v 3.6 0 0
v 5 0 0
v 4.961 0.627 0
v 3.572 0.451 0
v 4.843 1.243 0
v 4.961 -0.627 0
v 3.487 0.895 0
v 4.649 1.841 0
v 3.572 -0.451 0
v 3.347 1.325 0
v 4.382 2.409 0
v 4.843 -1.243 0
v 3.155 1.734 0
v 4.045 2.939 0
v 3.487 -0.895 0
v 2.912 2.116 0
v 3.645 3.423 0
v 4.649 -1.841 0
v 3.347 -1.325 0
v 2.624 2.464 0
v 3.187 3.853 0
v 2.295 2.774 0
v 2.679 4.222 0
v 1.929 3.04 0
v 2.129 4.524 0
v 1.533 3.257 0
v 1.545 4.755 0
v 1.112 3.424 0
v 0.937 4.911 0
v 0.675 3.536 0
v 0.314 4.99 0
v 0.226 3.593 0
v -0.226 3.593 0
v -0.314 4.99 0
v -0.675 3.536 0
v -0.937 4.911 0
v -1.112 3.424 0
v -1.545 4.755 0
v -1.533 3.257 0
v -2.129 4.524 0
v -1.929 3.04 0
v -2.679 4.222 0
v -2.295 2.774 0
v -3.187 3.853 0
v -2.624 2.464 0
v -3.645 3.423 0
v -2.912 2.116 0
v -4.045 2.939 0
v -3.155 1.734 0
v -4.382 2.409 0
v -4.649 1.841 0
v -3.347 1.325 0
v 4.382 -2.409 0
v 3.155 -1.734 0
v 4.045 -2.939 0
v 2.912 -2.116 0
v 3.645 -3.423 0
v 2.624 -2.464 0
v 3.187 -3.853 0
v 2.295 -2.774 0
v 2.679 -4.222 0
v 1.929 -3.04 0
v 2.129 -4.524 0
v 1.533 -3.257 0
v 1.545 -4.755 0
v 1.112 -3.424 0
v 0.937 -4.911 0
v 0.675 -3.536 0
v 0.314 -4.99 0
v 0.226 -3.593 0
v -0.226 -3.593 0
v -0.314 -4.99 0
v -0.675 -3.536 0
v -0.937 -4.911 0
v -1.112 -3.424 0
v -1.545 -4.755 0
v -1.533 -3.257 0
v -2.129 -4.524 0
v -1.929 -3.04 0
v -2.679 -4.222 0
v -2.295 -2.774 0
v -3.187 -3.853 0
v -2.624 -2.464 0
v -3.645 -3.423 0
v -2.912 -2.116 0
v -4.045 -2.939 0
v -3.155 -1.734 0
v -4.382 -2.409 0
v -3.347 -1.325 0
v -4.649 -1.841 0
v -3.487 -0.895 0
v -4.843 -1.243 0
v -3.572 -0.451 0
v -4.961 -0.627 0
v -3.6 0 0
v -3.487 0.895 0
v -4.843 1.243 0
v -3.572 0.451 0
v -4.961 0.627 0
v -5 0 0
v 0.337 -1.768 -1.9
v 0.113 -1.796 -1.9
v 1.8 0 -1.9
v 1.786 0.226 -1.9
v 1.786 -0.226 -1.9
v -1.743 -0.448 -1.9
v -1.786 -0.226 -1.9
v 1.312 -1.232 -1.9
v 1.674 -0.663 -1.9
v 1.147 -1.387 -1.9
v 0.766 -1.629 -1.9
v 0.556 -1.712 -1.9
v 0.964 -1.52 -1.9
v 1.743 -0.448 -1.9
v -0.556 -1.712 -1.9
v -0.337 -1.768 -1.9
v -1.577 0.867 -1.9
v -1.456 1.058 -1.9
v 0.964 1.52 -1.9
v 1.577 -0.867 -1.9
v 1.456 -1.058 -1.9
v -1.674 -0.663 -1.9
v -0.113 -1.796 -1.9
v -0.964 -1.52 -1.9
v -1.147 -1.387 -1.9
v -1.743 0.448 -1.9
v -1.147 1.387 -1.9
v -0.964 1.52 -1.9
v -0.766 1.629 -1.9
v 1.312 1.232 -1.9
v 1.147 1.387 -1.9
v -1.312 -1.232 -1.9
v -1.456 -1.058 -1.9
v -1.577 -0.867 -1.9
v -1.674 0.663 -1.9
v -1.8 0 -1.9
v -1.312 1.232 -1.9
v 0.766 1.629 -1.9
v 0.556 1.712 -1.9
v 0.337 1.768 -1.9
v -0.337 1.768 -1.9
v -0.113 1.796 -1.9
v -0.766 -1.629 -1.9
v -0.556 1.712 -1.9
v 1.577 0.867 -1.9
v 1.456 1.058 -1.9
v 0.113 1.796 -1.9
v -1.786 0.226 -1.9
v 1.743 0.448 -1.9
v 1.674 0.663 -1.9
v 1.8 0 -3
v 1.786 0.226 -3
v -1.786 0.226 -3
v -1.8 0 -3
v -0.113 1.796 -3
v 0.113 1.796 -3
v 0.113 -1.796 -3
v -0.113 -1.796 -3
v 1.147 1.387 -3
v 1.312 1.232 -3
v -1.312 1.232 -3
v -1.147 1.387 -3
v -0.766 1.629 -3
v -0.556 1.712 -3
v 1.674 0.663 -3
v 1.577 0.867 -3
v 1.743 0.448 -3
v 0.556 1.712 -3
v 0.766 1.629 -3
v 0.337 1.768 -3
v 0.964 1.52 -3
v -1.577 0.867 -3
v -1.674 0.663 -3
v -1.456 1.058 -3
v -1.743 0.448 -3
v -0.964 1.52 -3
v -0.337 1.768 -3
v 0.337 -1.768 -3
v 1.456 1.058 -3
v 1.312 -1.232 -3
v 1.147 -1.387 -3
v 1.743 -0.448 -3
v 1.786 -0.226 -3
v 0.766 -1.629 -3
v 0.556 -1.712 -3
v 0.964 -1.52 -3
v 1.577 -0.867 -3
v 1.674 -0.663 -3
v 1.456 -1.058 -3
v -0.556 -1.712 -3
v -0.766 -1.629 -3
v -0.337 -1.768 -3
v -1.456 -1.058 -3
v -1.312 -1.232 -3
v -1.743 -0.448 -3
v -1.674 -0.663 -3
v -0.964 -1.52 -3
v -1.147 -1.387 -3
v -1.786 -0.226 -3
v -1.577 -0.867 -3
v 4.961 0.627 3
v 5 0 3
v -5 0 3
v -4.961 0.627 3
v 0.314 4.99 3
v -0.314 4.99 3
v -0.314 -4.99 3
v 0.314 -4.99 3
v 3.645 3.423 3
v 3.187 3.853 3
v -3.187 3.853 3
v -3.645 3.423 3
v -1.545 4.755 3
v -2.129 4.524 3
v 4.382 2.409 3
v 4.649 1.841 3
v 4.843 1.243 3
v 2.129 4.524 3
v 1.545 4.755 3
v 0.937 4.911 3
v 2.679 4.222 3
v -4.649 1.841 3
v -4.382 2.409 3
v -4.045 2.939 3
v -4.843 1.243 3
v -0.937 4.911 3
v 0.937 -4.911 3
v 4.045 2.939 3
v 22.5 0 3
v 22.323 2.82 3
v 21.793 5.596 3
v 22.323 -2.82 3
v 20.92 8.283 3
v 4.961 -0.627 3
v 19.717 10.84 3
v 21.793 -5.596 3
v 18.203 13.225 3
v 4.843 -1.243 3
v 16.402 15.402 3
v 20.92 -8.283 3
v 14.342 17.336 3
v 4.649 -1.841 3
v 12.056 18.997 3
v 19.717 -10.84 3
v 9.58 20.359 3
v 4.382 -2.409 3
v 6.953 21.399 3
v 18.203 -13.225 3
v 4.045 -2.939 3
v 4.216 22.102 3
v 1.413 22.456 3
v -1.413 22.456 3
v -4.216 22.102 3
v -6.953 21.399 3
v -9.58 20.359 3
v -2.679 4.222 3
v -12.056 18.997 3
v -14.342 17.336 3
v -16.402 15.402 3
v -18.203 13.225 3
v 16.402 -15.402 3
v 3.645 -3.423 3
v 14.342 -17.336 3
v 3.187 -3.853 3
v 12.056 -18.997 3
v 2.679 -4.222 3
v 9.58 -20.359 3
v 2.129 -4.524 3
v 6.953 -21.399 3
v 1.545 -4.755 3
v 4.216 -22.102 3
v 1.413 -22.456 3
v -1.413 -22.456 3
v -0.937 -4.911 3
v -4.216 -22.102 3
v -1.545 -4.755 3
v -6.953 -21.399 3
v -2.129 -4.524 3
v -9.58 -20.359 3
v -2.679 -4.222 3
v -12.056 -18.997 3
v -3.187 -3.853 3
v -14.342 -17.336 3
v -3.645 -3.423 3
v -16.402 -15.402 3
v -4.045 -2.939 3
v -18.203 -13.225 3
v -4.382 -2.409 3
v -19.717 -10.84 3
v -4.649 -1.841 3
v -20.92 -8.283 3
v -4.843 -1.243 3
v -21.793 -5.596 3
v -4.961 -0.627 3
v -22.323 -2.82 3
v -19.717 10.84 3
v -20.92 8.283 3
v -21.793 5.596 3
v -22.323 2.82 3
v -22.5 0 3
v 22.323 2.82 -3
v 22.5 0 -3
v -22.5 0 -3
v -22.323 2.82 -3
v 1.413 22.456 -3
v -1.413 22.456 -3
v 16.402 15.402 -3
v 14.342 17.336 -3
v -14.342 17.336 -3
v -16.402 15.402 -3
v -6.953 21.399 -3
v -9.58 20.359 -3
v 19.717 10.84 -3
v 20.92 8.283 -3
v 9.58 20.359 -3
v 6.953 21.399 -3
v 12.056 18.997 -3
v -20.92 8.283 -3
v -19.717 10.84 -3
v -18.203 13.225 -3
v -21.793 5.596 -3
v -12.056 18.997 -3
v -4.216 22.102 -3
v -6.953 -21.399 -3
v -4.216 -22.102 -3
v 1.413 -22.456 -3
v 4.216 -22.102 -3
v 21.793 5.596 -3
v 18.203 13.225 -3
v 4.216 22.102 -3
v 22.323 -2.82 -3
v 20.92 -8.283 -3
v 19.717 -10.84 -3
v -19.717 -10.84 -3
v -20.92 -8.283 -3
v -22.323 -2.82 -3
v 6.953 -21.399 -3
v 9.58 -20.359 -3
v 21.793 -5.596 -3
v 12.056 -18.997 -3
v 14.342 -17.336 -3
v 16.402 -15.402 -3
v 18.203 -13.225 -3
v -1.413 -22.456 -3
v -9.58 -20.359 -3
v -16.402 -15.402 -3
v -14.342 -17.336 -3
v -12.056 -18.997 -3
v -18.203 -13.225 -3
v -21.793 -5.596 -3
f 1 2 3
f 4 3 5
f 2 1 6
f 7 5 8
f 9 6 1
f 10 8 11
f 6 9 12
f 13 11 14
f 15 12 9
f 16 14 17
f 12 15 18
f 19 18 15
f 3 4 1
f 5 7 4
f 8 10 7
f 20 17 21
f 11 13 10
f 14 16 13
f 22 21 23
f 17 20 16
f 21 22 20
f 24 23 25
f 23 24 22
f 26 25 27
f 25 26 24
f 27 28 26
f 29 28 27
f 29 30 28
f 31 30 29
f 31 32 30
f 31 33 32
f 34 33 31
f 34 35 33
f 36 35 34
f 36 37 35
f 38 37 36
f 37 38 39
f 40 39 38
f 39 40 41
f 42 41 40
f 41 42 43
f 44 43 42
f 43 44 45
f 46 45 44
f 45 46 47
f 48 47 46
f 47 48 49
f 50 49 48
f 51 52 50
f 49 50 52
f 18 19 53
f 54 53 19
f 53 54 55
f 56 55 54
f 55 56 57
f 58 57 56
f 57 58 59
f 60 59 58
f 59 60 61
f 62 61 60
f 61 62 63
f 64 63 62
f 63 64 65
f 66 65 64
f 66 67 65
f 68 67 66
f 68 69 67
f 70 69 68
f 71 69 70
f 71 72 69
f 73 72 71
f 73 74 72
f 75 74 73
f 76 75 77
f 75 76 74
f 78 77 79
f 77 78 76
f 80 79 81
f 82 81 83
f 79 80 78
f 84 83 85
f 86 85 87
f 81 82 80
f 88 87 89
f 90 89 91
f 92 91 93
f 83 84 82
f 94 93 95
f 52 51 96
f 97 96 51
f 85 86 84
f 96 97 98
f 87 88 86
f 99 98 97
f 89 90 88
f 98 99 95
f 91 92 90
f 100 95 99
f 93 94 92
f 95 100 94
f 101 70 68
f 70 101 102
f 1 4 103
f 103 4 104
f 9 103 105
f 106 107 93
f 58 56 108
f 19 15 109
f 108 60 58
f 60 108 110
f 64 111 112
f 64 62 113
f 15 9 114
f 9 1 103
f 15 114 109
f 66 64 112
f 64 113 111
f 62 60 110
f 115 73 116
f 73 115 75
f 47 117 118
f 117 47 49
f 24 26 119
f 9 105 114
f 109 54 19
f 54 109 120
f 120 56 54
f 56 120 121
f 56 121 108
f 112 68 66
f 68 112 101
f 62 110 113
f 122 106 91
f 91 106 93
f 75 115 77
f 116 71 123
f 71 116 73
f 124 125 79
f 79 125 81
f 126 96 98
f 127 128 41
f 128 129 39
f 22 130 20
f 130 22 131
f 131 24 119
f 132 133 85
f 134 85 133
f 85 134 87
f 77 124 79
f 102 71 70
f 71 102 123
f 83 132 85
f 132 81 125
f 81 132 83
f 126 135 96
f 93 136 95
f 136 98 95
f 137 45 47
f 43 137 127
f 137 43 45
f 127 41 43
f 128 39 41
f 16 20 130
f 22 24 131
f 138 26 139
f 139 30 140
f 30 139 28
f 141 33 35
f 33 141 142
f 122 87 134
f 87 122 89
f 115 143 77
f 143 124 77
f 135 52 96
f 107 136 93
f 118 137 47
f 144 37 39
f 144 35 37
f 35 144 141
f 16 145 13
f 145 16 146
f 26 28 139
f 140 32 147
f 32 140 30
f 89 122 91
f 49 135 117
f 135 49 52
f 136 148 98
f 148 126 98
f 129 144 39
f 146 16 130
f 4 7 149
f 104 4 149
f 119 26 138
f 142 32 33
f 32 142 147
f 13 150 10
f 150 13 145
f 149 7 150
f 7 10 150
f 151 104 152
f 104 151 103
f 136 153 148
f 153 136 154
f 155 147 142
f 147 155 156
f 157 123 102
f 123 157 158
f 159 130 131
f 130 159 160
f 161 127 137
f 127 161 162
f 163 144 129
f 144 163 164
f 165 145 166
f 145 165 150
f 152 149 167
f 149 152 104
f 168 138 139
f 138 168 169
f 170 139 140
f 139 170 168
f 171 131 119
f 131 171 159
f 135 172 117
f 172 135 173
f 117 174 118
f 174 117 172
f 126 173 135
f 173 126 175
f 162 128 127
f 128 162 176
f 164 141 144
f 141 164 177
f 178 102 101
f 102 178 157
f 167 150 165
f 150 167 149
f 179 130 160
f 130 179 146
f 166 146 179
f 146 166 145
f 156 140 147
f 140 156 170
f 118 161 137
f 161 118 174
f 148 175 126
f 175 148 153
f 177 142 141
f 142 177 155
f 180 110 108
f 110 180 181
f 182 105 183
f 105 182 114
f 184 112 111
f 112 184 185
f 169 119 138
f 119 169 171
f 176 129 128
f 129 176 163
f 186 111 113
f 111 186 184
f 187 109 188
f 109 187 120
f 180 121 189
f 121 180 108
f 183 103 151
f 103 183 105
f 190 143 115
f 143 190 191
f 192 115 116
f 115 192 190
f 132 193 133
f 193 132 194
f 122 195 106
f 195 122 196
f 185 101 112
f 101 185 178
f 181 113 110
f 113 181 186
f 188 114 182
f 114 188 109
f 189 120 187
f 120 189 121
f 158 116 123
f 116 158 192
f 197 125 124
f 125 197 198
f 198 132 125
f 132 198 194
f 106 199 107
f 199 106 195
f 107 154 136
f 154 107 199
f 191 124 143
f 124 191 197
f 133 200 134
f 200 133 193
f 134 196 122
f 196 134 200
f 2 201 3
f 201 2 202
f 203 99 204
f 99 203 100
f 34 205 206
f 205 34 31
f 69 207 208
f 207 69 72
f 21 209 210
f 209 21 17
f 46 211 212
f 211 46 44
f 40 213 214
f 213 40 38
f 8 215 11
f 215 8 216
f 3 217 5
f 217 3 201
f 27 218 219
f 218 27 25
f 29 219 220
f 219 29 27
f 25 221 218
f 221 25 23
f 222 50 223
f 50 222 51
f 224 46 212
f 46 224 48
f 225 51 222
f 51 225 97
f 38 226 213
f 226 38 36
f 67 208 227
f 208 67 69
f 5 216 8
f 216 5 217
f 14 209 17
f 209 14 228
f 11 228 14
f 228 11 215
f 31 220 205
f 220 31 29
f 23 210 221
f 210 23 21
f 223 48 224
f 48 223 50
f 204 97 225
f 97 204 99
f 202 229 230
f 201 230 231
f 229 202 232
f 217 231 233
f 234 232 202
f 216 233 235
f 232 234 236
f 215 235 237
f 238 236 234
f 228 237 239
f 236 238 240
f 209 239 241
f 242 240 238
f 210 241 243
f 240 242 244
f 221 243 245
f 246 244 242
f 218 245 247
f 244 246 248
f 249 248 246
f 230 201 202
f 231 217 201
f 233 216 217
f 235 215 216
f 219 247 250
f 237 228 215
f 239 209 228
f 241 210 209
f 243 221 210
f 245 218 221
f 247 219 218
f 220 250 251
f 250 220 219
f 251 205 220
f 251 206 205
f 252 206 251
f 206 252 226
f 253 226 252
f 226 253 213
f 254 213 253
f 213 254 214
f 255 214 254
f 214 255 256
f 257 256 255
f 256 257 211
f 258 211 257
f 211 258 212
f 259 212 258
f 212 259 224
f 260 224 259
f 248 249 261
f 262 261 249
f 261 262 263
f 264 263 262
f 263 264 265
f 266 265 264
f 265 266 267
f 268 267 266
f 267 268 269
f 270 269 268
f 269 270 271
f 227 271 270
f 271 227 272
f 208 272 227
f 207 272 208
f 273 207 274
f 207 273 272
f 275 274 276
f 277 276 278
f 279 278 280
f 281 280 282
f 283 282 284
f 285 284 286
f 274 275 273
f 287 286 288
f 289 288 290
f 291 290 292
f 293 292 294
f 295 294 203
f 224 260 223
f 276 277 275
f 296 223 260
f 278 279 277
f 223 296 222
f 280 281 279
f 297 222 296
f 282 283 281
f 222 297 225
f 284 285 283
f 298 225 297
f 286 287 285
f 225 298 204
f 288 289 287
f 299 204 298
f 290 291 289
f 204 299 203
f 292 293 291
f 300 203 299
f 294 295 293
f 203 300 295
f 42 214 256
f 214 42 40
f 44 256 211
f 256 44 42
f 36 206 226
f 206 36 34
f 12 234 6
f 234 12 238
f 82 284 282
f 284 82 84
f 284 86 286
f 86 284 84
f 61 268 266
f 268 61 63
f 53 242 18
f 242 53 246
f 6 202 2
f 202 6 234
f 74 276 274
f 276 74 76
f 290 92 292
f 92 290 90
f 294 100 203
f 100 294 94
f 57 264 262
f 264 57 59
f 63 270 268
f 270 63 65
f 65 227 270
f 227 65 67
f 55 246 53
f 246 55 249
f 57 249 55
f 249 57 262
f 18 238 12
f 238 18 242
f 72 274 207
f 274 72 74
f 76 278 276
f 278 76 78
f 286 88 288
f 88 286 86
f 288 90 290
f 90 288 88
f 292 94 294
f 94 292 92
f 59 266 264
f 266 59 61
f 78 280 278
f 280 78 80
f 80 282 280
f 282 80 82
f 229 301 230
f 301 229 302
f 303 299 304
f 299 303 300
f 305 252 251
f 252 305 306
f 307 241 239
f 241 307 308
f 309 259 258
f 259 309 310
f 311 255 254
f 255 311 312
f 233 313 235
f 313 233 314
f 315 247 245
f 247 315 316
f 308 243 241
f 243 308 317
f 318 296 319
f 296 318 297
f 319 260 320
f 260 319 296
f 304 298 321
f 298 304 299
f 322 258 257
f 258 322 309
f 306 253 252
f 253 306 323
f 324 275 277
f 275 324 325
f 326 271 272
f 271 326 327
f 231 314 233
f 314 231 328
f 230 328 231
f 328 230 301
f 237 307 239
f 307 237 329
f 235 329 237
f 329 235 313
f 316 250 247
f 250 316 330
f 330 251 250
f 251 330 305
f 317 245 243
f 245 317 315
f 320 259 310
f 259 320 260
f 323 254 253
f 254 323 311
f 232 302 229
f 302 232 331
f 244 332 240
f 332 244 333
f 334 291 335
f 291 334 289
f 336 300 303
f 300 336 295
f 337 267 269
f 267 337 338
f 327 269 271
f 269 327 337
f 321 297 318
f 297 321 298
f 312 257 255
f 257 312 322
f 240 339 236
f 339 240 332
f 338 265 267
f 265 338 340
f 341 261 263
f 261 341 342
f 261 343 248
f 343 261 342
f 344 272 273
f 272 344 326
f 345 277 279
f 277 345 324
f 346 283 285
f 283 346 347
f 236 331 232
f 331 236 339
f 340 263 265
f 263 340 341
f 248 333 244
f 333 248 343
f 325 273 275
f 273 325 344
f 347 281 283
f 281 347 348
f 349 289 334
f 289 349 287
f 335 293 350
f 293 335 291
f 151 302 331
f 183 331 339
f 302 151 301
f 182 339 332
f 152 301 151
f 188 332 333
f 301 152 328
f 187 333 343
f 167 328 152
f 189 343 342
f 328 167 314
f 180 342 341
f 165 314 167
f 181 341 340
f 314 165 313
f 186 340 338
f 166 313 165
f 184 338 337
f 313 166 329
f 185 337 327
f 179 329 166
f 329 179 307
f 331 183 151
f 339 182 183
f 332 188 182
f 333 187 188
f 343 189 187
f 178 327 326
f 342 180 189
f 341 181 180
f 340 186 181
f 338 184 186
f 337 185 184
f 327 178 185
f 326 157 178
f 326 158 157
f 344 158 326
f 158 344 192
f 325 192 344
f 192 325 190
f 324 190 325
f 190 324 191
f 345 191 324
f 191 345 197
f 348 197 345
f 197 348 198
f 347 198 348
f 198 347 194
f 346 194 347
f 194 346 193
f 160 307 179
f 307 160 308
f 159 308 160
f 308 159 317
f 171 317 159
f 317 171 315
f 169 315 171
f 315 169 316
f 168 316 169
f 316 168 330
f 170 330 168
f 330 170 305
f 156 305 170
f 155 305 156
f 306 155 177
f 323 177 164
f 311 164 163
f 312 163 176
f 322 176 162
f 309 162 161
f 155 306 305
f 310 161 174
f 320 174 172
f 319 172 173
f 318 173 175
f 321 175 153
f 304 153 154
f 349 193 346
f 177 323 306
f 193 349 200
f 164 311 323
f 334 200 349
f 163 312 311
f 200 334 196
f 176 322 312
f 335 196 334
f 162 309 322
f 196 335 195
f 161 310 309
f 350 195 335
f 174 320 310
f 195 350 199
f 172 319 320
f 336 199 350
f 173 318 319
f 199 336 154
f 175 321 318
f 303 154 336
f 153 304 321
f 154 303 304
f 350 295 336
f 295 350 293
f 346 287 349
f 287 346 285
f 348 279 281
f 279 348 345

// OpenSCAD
$fn = 50;


difference() {
	union() {
		translate(v = [0, 0, -3.0000000000]) {
			cylinder(h = 6, r = 22.5000000000);
		}
	}
	union() {
		translate(v = [0, 0, 0]) {
			rotate(a = [0, 0, 0]) {
				difference() {
					union() {
						translate(v = [0, 0, -6.0000000000]) {
							cylinder(h = 6, r = 1.5000000000);
						}
						translate(v = [0, 0, -1.9000000000]) {
							cylinder(h = 1.9000000000, r1 = 1.8000000000, r2 = 3.6000000000);
						}
						translate(v = [0, 0, -6.0000000000]) {
							cylinder(h = 6, r = 1.8000000000);
						}
						translate(v = [0, 0, -6.0000000000]) {
							cylinder(h = 6, r = 1.5000000000);
						}
					}
					union();
				}
			}
		}
		#cylinder(h = 3, r = 5.0000000000);
	}
}
